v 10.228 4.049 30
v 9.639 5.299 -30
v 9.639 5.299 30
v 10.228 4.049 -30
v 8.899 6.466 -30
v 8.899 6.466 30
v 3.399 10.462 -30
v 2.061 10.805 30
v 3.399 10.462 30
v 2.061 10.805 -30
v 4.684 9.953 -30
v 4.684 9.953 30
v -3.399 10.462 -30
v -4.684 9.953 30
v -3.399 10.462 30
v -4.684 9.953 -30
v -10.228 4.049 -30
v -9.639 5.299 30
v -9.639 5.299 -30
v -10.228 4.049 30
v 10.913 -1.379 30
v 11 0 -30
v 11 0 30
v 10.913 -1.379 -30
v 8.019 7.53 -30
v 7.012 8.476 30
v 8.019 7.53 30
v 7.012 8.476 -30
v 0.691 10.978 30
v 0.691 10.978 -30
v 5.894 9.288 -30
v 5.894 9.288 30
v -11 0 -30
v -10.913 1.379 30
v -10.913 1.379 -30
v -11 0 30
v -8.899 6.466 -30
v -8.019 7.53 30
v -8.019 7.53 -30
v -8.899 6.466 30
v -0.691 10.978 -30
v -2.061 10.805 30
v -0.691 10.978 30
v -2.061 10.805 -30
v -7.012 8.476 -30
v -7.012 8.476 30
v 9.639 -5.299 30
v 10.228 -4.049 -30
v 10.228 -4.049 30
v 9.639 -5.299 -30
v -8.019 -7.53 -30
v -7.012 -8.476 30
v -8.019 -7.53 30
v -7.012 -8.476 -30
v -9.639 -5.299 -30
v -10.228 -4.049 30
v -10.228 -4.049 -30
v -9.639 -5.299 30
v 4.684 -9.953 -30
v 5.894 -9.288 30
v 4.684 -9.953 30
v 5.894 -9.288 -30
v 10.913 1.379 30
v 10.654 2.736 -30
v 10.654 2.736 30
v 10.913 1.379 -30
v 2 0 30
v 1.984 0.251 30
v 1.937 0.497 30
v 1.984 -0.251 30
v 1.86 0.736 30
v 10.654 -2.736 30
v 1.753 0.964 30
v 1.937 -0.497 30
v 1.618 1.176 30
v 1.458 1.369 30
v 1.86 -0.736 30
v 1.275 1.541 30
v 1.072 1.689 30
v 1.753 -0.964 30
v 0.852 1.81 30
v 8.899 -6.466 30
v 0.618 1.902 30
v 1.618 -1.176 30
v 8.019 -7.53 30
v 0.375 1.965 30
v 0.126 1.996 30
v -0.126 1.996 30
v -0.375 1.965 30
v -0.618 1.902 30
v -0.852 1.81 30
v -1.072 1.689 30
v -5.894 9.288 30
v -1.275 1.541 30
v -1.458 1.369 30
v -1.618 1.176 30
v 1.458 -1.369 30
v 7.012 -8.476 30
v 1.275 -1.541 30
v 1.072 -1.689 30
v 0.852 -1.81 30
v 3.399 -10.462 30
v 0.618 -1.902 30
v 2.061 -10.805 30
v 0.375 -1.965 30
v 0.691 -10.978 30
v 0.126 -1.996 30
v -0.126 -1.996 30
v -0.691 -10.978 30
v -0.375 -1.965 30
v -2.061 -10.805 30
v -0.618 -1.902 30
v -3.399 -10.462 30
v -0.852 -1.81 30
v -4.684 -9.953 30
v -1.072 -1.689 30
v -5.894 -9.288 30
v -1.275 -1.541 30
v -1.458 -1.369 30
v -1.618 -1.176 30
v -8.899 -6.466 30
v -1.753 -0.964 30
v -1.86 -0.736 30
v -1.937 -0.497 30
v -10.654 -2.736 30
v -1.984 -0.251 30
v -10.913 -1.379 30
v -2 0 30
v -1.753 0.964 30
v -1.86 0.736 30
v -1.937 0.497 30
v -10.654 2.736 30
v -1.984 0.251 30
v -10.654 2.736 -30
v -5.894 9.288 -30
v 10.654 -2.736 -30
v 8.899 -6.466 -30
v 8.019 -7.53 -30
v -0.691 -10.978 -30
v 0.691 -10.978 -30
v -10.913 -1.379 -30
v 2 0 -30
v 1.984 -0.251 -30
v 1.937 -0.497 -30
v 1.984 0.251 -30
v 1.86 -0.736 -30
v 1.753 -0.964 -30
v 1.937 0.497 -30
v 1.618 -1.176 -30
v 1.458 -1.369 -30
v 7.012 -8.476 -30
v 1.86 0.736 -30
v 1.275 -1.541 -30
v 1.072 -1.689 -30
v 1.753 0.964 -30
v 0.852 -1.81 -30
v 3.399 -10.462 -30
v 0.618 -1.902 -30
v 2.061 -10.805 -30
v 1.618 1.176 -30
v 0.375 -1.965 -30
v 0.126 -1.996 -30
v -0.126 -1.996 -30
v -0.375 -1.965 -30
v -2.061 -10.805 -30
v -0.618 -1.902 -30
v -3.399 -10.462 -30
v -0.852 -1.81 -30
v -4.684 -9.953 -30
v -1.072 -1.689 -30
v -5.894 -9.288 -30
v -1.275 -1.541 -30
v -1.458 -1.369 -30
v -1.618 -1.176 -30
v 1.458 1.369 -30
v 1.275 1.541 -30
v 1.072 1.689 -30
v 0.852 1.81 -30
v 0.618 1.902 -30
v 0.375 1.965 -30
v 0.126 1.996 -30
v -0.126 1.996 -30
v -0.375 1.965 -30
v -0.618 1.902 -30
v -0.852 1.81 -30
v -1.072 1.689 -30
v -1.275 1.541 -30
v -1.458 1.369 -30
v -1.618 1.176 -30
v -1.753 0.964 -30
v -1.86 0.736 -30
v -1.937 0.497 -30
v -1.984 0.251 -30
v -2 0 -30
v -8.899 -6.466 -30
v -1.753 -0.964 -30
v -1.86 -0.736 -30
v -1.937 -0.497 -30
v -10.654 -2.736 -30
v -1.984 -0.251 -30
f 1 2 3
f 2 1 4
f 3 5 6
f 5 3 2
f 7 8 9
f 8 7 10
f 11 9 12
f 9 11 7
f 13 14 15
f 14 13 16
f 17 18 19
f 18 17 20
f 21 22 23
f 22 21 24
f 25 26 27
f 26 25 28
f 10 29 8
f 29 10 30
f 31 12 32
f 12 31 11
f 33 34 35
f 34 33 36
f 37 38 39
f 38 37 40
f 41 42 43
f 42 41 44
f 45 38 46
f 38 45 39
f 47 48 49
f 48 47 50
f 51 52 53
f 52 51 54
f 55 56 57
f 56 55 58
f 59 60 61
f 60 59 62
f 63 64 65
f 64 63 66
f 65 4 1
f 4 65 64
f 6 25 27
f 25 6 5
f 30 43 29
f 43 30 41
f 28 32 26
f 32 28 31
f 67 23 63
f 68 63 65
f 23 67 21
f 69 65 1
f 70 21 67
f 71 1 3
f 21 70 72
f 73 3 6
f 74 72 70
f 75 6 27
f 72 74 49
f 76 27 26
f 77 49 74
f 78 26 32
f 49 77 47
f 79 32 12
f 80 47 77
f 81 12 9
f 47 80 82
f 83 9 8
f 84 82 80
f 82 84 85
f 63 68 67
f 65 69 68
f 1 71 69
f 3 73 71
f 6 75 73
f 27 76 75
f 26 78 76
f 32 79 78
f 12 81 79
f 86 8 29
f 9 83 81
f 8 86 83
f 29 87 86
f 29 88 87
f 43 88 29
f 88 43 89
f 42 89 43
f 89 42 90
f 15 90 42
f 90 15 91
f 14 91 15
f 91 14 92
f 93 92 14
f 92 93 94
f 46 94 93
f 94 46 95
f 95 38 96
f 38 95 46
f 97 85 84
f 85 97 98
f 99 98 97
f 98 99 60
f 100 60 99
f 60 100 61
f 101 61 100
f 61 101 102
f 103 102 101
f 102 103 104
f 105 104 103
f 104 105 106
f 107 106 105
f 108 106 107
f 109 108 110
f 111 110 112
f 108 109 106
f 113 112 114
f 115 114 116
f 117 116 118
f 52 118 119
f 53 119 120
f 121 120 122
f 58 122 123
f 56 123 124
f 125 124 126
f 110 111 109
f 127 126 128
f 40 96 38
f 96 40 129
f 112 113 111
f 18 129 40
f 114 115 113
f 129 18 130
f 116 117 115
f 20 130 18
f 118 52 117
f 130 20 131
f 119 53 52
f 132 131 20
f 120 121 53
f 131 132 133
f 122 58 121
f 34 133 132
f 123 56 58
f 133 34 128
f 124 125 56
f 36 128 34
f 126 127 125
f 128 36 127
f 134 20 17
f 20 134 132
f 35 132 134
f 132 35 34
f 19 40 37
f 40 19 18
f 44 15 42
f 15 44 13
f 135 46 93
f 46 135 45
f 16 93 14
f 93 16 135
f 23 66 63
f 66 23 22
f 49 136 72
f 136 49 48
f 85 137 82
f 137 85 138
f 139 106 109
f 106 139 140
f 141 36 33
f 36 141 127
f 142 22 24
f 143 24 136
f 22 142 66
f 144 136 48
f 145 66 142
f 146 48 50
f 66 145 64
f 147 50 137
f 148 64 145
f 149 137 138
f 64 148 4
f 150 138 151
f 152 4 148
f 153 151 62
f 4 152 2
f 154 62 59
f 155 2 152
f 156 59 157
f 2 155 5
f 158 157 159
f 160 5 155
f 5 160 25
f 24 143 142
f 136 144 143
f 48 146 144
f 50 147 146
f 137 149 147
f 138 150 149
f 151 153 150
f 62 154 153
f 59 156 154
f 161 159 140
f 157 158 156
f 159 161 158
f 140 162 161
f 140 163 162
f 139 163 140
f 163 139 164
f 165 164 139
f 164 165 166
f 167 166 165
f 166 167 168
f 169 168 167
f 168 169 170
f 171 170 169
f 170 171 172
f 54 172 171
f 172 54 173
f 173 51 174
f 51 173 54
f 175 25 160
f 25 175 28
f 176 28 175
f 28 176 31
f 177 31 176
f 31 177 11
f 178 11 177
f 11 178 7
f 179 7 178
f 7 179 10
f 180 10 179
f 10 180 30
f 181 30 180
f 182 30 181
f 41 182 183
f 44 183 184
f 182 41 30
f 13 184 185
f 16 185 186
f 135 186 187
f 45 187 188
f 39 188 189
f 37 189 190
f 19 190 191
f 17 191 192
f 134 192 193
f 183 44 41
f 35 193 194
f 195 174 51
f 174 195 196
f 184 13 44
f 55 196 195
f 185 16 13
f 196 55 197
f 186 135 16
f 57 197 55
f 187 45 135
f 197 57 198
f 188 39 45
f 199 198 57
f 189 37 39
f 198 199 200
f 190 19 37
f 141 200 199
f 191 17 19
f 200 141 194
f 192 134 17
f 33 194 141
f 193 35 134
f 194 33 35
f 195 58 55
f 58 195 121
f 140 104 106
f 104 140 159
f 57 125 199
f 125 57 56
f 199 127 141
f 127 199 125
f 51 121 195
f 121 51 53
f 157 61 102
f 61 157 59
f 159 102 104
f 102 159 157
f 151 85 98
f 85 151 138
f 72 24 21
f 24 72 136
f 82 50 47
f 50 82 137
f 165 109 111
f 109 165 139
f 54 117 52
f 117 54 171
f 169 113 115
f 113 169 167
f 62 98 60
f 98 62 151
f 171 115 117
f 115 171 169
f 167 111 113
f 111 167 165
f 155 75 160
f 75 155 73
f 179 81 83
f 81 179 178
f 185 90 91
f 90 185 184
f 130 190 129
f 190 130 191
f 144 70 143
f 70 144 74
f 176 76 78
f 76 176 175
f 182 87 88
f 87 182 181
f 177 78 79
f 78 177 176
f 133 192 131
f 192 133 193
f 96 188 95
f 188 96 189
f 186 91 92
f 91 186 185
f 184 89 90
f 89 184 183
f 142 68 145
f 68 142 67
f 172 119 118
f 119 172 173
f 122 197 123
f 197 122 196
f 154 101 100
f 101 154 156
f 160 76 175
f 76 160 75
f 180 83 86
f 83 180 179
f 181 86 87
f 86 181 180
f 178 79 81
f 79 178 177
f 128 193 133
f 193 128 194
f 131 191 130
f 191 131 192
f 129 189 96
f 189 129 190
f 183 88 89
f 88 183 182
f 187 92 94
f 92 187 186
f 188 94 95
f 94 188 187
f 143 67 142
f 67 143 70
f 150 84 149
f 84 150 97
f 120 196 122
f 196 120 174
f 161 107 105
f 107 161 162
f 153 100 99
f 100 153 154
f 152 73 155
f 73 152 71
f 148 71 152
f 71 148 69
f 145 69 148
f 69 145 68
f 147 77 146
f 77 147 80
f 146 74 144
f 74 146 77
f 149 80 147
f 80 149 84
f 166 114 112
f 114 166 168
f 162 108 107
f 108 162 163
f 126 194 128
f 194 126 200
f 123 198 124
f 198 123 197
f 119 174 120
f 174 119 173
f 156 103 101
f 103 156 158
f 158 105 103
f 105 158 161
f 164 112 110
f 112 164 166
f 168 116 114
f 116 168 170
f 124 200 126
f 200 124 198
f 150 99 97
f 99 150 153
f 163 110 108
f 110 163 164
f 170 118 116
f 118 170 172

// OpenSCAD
$fn = 50;


difference() {
	union() {
		translate(v = [0, 0, -30.0000000000]) {
			cylinder(h = 60, r = 11.0000000000);
		}
	}
	union() {
		translate(v = [0, 0, -100.0000000000]) {
			cylinder(h = 200, r = 2);
		}
	}
}
